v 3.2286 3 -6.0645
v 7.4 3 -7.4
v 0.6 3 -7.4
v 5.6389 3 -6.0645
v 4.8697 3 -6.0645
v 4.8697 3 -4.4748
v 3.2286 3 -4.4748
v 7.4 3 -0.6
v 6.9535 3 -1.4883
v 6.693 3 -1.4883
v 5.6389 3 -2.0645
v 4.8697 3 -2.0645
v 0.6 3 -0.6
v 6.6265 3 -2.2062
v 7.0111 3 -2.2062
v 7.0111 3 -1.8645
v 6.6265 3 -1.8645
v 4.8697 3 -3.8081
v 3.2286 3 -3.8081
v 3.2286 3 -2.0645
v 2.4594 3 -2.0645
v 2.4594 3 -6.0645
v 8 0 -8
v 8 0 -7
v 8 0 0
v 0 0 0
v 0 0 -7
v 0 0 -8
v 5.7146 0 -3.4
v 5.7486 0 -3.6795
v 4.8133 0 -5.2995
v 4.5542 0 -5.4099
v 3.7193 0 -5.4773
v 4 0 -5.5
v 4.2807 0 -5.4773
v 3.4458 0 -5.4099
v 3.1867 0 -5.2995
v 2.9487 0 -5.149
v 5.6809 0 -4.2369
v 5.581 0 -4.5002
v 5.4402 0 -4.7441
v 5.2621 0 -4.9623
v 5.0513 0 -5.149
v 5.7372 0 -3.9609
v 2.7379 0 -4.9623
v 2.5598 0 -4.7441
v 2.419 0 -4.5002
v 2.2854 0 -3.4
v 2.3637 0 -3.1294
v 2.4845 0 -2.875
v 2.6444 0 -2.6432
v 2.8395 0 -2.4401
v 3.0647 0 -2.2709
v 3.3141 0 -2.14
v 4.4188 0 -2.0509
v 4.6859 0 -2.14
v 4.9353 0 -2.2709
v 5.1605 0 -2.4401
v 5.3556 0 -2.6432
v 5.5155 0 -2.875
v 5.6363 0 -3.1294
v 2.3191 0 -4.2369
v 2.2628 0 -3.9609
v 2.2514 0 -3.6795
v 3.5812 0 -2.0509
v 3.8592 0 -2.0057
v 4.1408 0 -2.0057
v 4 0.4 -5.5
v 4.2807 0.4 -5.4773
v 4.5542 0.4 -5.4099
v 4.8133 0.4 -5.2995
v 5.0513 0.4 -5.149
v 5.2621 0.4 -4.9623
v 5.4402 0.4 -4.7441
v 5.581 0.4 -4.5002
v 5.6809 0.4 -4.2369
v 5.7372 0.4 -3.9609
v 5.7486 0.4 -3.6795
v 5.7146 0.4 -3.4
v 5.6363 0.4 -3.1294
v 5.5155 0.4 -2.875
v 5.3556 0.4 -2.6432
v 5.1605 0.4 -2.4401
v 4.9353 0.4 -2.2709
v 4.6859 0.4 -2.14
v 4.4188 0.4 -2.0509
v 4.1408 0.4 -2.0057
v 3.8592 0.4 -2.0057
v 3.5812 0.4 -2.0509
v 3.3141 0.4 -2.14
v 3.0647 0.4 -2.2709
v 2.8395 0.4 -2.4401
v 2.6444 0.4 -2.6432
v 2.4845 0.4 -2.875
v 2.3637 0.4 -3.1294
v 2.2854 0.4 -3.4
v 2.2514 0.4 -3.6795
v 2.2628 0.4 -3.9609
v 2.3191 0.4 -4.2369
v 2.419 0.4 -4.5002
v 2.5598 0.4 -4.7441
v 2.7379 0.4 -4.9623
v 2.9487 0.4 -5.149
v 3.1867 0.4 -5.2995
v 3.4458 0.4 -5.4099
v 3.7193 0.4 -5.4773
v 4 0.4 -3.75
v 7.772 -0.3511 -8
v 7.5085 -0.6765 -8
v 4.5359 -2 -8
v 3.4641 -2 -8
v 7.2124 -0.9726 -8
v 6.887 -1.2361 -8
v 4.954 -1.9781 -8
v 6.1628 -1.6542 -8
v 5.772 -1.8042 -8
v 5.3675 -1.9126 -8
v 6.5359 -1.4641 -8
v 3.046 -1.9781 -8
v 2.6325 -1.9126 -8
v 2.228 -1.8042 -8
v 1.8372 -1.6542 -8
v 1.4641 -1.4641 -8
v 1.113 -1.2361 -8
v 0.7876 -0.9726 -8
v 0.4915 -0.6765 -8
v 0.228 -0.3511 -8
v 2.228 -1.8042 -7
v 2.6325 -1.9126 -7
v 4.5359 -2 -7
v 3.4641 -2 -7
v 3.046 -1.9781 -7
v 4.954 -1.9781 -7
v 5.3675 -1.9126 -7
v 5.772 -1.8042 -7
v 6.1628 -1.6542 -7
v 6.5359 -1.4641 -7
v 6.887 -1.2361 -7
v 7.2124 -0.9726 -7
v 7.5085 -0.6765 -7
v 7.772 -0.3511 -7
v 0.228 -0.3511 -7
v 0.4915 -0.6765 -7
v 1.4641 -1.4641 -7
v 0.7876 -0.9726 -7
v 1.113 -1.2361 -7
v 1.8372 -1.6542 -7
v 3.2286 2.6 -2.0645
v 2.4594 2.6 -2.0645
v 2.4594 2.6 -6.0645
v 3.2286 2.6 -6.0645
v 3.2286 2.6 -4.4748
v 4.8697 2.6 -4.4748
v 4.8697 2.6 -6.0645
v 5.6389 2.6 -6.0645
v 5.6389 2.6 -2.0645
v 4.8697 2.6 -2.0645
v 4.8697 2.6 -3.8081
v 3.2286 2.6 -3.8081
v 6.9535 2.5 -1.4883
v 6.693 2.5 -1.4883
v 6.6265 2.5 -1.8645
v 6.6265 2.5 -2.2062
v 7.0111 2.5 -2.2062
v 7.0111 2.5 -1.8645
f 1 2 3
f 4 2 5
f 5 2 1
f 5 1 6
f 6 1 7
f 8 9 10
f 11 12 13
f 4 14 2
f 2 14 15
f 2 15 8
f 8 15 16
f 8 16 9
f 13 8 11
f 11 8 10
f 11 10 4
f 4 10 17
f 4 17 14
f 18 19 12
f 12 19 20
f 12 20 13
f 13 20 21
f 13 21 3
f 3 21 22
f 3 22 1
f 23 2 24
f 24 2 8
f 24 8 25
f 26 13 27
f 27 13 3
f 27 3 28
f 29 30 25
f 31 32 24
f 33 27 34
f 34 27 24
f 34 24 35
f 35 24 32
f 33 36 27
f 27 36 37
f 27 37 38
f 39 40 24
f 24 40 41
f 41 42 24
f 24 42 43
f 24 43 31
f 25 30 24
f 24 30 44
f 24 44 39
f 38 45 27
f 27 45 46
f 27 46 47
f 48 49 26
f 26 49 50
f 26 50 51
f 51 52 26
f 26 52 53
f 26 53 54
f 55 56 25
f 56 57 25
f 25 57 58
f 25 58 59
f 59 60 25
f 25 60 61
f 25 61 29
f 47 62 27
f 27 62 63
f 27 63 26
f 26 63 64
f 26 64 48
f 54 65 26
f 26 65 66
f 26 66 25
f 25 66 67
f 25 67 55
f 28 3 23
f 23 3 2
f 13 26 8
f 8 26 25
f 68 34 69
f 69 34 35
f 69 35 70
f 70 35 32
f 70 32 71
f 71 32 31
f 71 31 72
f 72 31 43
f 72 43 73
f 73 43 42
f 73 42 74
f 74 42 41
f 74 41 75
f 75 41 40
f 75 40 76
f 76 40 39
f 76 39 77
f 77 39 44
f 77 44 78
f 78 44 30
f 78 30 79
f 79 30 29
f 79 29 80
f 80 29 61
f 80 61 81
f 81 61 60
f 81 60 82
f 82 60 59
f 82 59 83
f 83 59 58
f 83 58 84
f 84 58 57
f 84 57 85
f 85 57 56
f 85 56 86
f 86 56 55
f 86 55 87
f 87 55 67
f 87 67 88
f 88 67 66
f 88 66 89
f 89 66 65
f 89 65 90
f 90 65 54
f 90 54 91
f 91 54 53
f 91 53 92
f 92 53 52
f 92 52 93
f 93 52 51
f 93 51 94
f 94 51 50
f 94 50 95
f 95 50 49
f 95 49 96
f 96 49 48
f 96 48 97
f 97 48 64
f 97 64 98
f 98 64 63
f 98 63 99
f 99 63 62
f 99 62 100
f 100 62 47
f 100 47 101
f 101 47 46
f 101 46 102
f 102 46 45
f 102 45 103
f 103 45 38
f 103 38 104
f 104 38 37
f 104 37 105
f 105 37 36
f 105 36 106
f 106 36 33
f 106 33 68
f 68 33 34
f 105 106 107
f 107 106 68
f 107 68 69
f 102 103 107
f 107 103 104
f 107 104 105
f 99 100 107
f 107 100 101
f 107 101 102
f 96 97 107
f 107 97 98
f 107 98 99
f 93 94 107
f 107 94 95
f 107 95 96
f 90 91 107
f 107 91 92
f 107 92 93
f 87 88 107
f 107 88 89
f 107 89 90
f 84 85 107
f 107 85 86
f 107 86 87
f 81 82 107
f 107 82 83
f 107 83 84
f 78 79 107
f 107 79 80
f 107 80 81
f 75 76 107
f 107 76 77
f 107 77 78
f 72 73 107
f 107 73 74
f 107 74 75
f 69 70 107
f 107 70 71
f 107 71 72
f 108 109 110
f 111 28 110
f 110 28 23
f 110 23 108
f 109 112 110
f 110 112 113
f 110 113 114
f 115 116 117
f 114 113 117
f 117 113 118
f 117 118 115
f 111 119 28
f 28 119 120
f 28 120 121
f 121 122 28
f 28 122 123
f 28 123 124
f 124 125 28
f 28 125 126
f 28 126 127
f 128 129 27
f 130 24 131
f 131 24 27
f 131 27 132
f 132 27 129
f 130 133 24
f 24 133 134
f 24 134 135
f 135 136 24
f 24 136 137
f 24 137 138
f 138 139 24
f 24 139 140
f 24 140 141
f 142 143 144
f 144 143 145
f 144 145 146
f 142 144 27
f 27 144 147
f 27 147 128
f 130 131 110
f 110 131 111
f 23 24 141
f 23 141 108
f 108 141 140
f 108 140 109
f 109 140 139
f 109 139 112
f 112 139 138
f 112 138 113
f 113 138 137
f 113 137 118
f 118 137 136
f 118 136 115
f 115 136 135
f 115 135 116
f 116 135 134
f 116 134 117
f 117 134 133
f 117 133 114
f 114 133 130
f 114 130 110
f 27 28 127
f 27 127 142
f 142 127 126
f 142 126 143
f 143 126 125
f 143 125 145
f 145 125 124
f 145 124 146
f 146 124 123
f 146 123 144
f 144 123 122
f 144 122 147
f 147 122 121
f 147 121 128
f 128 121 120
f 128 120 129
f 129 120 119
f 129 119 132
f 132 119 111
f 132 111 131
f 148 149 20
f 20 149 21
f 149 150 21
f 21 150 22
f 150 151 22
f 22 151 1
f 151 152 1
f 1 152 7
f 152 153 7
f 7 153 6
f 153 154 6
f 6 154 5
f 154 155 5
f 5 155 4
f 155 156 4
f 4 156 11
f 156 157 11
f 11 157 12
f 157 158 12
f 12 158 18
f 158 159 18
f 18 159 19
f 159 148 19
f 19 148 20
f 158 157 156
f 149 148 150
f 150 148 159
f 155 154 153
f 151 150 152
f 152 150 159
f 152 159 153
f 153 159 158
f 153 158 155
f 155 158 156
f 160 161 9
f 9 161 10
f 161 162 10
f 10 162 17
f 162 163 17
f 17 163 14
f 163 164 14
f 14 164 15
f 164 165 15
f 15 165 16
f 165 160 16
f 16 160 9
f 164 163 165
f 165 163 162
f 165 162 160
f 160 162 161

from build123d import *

# Parameters (mm, degrees)
SKETCH1_W               = 8
SKETCH1_H               = 8
BOSS_EXTRUDE1_DEPTH     = 3
CUT_EXTRUDE1_DEPTH      = 12.704699911
CUT_EXTRUDE1_DEPTH_BACK = 12.704699911
CUT_EXTRUDE2_DEPTH      = 11
SKETCH4_R               = 1.75
CUT_EXTRUDE3_DEPTH      = 0.4
SKETCH5_W               = 8
SKETCH5_H               = 1
BOSS_EXTRUDE2_DEPTH     = 2
FILLET1_R               = 4
CUT_EXTRUDE4_DEPTH      = 0.4
CUT_EXTRUDE5_DEPTH      = 0.5


with BuildPart() as part:
    # Sketch1 → Boss-Extrude1 (new body)
    with BuildSketch(Plane(origin=(0, 0, 0), x_dir=(1, 0, 0), z_dir=(0, 1, 0))):
        with Locations((4, 4)):
            Rectangle(SKETCH1_W, SKETCH1_H)
    extrude(amount=BOSS_EXTRUDE1_DEPTH)

    # Sketch2 → Cut-Extrude1 (cut, two sides: drawn at the far end of the back side and taken through both)
    with BuildSketch(Plane.XY.offset(-CUT_EXTRUDE1_DEPTH_BACK)):
        Polygon((0, 0), (0.6, 3), (0, 3), align=None)
        Polygon((8, 0), (7.4, 3), (8, 3), align=None)
    extrude(amount=CUT_EXTRUDE1_DEPTH + CUT_EXTRUDE1_DEPTH_BACK, mode=Mode.SUBTRACT)

    # Sketch3 → Cut-Extrude2 (cut)
    with BuildSketch(Plane(origin=(0, 0, 0), x_dir=(0, 0, -1), z_dir=(1, 0, 0))):
        Polygon((0, 0), (0.6, 3), (0, 3), align=None)
        Polygon((8, 3), (7.4, 3), (8, 0), align=None)
    extrude(amount=CUT_EXTRUDE2_DEPTH, mode=Mode.SUBTRACT)

    # Sketch4 → Cut-Extrude3 (cut)
    with BuildSketch(Plane.XZ):
        with Locations(Location((4, -3.75, 0), (0, 0, 270))):
            Circle(SKETCH4_R)
    extrude(amount=-CUT_EXTRUDE3_DEPTH, mode=Mode.SUBTRACT)

    # Sketch5 → Boss-Extrude2 (add)
    with BuildSketch(Plane.XZ):
        with Locations((4, -7.5)):
            Rectangle(SKETCH5_W, SKETCH5_H)
    extrude(amount=BOSS_EXTRUDE2_DEPTH)

    # Fillet1
    # the kernel refuses this fillet: 4 mm, written as the material it takes off along each edge
    with BuildSketch(Plane(origin=(8, -2, -16.660254038), x_dir=(0, 1, 0), z_dir=(0, 0, 1)), Plane(origin=(0, -2, 1.660254038), x_dir=(0, 1, 0), z_dir=(0, 0, -1))) as fillet1_piece_1:
        with BuildLine():
            CenterArc((4, 3.464101615), FILLET1_R, 180, 60)
            Line((0, 3.464101615), (-0.08, 3.464101615))
            Line((-0.08, 3.464101615), (-0.08, 0))
            Line((-0.08, 0), (0, -0.08))
            ThreePointArc((0, -0.08), (1, -0.08), (1.96, -0.069282032))
            Line((1.96, -0.069282032), (2, 0))
        make_face()
    extrude(amount=18.320508076, mode=Mode.SUBTRACT)

    # Sketch6 → Cut-Extrude4 (cut)
    with BuildSketch(Plane(origin=(0, 3, 0), x_dir=(1, 0, 0), z_dir=(0, 1, 0))):
        Polygon((2.459405501, 2.064543337), (2.459405501, 6.064543337), (3.22863627, 6.064543337), (3.22863627, 4.474799747), (4.869661911, 4.474799747), (4.869661911, 6.064543337), (5.63889268, 6.064543337), (5.63889268, 2.064543337), (4.869661911, 2.064543337), (4.869661911, 3.80813308), (3.22863627, 3.80813308), (3.22863627, 2.064543337), align=None)
    extrude(amount=-CUT_EXTRUDE4_DEPTH, mode=Mode.SUBTRACT)

    # Sketch7 → Cut-Extrude5 (cut)
    with BuildSketch(Plane(origin=(0, 3, 0), x_dir=(1, 0, 0), z_dir=(0, 1, 0))):
        Polygon((6.693034442, 1.488274187), (6.626528032, 1.86447611), (6.626528032, 2.206222905), (7.011143417, 2.206222905), (7.011143417, 1.86447611), (6.953451109, 1.488274187), align=None)
    extrude(amount=-CUT_EXTRUDE5_DEPTH, mode=Mode.SUBTRACT)


solid = part.part
